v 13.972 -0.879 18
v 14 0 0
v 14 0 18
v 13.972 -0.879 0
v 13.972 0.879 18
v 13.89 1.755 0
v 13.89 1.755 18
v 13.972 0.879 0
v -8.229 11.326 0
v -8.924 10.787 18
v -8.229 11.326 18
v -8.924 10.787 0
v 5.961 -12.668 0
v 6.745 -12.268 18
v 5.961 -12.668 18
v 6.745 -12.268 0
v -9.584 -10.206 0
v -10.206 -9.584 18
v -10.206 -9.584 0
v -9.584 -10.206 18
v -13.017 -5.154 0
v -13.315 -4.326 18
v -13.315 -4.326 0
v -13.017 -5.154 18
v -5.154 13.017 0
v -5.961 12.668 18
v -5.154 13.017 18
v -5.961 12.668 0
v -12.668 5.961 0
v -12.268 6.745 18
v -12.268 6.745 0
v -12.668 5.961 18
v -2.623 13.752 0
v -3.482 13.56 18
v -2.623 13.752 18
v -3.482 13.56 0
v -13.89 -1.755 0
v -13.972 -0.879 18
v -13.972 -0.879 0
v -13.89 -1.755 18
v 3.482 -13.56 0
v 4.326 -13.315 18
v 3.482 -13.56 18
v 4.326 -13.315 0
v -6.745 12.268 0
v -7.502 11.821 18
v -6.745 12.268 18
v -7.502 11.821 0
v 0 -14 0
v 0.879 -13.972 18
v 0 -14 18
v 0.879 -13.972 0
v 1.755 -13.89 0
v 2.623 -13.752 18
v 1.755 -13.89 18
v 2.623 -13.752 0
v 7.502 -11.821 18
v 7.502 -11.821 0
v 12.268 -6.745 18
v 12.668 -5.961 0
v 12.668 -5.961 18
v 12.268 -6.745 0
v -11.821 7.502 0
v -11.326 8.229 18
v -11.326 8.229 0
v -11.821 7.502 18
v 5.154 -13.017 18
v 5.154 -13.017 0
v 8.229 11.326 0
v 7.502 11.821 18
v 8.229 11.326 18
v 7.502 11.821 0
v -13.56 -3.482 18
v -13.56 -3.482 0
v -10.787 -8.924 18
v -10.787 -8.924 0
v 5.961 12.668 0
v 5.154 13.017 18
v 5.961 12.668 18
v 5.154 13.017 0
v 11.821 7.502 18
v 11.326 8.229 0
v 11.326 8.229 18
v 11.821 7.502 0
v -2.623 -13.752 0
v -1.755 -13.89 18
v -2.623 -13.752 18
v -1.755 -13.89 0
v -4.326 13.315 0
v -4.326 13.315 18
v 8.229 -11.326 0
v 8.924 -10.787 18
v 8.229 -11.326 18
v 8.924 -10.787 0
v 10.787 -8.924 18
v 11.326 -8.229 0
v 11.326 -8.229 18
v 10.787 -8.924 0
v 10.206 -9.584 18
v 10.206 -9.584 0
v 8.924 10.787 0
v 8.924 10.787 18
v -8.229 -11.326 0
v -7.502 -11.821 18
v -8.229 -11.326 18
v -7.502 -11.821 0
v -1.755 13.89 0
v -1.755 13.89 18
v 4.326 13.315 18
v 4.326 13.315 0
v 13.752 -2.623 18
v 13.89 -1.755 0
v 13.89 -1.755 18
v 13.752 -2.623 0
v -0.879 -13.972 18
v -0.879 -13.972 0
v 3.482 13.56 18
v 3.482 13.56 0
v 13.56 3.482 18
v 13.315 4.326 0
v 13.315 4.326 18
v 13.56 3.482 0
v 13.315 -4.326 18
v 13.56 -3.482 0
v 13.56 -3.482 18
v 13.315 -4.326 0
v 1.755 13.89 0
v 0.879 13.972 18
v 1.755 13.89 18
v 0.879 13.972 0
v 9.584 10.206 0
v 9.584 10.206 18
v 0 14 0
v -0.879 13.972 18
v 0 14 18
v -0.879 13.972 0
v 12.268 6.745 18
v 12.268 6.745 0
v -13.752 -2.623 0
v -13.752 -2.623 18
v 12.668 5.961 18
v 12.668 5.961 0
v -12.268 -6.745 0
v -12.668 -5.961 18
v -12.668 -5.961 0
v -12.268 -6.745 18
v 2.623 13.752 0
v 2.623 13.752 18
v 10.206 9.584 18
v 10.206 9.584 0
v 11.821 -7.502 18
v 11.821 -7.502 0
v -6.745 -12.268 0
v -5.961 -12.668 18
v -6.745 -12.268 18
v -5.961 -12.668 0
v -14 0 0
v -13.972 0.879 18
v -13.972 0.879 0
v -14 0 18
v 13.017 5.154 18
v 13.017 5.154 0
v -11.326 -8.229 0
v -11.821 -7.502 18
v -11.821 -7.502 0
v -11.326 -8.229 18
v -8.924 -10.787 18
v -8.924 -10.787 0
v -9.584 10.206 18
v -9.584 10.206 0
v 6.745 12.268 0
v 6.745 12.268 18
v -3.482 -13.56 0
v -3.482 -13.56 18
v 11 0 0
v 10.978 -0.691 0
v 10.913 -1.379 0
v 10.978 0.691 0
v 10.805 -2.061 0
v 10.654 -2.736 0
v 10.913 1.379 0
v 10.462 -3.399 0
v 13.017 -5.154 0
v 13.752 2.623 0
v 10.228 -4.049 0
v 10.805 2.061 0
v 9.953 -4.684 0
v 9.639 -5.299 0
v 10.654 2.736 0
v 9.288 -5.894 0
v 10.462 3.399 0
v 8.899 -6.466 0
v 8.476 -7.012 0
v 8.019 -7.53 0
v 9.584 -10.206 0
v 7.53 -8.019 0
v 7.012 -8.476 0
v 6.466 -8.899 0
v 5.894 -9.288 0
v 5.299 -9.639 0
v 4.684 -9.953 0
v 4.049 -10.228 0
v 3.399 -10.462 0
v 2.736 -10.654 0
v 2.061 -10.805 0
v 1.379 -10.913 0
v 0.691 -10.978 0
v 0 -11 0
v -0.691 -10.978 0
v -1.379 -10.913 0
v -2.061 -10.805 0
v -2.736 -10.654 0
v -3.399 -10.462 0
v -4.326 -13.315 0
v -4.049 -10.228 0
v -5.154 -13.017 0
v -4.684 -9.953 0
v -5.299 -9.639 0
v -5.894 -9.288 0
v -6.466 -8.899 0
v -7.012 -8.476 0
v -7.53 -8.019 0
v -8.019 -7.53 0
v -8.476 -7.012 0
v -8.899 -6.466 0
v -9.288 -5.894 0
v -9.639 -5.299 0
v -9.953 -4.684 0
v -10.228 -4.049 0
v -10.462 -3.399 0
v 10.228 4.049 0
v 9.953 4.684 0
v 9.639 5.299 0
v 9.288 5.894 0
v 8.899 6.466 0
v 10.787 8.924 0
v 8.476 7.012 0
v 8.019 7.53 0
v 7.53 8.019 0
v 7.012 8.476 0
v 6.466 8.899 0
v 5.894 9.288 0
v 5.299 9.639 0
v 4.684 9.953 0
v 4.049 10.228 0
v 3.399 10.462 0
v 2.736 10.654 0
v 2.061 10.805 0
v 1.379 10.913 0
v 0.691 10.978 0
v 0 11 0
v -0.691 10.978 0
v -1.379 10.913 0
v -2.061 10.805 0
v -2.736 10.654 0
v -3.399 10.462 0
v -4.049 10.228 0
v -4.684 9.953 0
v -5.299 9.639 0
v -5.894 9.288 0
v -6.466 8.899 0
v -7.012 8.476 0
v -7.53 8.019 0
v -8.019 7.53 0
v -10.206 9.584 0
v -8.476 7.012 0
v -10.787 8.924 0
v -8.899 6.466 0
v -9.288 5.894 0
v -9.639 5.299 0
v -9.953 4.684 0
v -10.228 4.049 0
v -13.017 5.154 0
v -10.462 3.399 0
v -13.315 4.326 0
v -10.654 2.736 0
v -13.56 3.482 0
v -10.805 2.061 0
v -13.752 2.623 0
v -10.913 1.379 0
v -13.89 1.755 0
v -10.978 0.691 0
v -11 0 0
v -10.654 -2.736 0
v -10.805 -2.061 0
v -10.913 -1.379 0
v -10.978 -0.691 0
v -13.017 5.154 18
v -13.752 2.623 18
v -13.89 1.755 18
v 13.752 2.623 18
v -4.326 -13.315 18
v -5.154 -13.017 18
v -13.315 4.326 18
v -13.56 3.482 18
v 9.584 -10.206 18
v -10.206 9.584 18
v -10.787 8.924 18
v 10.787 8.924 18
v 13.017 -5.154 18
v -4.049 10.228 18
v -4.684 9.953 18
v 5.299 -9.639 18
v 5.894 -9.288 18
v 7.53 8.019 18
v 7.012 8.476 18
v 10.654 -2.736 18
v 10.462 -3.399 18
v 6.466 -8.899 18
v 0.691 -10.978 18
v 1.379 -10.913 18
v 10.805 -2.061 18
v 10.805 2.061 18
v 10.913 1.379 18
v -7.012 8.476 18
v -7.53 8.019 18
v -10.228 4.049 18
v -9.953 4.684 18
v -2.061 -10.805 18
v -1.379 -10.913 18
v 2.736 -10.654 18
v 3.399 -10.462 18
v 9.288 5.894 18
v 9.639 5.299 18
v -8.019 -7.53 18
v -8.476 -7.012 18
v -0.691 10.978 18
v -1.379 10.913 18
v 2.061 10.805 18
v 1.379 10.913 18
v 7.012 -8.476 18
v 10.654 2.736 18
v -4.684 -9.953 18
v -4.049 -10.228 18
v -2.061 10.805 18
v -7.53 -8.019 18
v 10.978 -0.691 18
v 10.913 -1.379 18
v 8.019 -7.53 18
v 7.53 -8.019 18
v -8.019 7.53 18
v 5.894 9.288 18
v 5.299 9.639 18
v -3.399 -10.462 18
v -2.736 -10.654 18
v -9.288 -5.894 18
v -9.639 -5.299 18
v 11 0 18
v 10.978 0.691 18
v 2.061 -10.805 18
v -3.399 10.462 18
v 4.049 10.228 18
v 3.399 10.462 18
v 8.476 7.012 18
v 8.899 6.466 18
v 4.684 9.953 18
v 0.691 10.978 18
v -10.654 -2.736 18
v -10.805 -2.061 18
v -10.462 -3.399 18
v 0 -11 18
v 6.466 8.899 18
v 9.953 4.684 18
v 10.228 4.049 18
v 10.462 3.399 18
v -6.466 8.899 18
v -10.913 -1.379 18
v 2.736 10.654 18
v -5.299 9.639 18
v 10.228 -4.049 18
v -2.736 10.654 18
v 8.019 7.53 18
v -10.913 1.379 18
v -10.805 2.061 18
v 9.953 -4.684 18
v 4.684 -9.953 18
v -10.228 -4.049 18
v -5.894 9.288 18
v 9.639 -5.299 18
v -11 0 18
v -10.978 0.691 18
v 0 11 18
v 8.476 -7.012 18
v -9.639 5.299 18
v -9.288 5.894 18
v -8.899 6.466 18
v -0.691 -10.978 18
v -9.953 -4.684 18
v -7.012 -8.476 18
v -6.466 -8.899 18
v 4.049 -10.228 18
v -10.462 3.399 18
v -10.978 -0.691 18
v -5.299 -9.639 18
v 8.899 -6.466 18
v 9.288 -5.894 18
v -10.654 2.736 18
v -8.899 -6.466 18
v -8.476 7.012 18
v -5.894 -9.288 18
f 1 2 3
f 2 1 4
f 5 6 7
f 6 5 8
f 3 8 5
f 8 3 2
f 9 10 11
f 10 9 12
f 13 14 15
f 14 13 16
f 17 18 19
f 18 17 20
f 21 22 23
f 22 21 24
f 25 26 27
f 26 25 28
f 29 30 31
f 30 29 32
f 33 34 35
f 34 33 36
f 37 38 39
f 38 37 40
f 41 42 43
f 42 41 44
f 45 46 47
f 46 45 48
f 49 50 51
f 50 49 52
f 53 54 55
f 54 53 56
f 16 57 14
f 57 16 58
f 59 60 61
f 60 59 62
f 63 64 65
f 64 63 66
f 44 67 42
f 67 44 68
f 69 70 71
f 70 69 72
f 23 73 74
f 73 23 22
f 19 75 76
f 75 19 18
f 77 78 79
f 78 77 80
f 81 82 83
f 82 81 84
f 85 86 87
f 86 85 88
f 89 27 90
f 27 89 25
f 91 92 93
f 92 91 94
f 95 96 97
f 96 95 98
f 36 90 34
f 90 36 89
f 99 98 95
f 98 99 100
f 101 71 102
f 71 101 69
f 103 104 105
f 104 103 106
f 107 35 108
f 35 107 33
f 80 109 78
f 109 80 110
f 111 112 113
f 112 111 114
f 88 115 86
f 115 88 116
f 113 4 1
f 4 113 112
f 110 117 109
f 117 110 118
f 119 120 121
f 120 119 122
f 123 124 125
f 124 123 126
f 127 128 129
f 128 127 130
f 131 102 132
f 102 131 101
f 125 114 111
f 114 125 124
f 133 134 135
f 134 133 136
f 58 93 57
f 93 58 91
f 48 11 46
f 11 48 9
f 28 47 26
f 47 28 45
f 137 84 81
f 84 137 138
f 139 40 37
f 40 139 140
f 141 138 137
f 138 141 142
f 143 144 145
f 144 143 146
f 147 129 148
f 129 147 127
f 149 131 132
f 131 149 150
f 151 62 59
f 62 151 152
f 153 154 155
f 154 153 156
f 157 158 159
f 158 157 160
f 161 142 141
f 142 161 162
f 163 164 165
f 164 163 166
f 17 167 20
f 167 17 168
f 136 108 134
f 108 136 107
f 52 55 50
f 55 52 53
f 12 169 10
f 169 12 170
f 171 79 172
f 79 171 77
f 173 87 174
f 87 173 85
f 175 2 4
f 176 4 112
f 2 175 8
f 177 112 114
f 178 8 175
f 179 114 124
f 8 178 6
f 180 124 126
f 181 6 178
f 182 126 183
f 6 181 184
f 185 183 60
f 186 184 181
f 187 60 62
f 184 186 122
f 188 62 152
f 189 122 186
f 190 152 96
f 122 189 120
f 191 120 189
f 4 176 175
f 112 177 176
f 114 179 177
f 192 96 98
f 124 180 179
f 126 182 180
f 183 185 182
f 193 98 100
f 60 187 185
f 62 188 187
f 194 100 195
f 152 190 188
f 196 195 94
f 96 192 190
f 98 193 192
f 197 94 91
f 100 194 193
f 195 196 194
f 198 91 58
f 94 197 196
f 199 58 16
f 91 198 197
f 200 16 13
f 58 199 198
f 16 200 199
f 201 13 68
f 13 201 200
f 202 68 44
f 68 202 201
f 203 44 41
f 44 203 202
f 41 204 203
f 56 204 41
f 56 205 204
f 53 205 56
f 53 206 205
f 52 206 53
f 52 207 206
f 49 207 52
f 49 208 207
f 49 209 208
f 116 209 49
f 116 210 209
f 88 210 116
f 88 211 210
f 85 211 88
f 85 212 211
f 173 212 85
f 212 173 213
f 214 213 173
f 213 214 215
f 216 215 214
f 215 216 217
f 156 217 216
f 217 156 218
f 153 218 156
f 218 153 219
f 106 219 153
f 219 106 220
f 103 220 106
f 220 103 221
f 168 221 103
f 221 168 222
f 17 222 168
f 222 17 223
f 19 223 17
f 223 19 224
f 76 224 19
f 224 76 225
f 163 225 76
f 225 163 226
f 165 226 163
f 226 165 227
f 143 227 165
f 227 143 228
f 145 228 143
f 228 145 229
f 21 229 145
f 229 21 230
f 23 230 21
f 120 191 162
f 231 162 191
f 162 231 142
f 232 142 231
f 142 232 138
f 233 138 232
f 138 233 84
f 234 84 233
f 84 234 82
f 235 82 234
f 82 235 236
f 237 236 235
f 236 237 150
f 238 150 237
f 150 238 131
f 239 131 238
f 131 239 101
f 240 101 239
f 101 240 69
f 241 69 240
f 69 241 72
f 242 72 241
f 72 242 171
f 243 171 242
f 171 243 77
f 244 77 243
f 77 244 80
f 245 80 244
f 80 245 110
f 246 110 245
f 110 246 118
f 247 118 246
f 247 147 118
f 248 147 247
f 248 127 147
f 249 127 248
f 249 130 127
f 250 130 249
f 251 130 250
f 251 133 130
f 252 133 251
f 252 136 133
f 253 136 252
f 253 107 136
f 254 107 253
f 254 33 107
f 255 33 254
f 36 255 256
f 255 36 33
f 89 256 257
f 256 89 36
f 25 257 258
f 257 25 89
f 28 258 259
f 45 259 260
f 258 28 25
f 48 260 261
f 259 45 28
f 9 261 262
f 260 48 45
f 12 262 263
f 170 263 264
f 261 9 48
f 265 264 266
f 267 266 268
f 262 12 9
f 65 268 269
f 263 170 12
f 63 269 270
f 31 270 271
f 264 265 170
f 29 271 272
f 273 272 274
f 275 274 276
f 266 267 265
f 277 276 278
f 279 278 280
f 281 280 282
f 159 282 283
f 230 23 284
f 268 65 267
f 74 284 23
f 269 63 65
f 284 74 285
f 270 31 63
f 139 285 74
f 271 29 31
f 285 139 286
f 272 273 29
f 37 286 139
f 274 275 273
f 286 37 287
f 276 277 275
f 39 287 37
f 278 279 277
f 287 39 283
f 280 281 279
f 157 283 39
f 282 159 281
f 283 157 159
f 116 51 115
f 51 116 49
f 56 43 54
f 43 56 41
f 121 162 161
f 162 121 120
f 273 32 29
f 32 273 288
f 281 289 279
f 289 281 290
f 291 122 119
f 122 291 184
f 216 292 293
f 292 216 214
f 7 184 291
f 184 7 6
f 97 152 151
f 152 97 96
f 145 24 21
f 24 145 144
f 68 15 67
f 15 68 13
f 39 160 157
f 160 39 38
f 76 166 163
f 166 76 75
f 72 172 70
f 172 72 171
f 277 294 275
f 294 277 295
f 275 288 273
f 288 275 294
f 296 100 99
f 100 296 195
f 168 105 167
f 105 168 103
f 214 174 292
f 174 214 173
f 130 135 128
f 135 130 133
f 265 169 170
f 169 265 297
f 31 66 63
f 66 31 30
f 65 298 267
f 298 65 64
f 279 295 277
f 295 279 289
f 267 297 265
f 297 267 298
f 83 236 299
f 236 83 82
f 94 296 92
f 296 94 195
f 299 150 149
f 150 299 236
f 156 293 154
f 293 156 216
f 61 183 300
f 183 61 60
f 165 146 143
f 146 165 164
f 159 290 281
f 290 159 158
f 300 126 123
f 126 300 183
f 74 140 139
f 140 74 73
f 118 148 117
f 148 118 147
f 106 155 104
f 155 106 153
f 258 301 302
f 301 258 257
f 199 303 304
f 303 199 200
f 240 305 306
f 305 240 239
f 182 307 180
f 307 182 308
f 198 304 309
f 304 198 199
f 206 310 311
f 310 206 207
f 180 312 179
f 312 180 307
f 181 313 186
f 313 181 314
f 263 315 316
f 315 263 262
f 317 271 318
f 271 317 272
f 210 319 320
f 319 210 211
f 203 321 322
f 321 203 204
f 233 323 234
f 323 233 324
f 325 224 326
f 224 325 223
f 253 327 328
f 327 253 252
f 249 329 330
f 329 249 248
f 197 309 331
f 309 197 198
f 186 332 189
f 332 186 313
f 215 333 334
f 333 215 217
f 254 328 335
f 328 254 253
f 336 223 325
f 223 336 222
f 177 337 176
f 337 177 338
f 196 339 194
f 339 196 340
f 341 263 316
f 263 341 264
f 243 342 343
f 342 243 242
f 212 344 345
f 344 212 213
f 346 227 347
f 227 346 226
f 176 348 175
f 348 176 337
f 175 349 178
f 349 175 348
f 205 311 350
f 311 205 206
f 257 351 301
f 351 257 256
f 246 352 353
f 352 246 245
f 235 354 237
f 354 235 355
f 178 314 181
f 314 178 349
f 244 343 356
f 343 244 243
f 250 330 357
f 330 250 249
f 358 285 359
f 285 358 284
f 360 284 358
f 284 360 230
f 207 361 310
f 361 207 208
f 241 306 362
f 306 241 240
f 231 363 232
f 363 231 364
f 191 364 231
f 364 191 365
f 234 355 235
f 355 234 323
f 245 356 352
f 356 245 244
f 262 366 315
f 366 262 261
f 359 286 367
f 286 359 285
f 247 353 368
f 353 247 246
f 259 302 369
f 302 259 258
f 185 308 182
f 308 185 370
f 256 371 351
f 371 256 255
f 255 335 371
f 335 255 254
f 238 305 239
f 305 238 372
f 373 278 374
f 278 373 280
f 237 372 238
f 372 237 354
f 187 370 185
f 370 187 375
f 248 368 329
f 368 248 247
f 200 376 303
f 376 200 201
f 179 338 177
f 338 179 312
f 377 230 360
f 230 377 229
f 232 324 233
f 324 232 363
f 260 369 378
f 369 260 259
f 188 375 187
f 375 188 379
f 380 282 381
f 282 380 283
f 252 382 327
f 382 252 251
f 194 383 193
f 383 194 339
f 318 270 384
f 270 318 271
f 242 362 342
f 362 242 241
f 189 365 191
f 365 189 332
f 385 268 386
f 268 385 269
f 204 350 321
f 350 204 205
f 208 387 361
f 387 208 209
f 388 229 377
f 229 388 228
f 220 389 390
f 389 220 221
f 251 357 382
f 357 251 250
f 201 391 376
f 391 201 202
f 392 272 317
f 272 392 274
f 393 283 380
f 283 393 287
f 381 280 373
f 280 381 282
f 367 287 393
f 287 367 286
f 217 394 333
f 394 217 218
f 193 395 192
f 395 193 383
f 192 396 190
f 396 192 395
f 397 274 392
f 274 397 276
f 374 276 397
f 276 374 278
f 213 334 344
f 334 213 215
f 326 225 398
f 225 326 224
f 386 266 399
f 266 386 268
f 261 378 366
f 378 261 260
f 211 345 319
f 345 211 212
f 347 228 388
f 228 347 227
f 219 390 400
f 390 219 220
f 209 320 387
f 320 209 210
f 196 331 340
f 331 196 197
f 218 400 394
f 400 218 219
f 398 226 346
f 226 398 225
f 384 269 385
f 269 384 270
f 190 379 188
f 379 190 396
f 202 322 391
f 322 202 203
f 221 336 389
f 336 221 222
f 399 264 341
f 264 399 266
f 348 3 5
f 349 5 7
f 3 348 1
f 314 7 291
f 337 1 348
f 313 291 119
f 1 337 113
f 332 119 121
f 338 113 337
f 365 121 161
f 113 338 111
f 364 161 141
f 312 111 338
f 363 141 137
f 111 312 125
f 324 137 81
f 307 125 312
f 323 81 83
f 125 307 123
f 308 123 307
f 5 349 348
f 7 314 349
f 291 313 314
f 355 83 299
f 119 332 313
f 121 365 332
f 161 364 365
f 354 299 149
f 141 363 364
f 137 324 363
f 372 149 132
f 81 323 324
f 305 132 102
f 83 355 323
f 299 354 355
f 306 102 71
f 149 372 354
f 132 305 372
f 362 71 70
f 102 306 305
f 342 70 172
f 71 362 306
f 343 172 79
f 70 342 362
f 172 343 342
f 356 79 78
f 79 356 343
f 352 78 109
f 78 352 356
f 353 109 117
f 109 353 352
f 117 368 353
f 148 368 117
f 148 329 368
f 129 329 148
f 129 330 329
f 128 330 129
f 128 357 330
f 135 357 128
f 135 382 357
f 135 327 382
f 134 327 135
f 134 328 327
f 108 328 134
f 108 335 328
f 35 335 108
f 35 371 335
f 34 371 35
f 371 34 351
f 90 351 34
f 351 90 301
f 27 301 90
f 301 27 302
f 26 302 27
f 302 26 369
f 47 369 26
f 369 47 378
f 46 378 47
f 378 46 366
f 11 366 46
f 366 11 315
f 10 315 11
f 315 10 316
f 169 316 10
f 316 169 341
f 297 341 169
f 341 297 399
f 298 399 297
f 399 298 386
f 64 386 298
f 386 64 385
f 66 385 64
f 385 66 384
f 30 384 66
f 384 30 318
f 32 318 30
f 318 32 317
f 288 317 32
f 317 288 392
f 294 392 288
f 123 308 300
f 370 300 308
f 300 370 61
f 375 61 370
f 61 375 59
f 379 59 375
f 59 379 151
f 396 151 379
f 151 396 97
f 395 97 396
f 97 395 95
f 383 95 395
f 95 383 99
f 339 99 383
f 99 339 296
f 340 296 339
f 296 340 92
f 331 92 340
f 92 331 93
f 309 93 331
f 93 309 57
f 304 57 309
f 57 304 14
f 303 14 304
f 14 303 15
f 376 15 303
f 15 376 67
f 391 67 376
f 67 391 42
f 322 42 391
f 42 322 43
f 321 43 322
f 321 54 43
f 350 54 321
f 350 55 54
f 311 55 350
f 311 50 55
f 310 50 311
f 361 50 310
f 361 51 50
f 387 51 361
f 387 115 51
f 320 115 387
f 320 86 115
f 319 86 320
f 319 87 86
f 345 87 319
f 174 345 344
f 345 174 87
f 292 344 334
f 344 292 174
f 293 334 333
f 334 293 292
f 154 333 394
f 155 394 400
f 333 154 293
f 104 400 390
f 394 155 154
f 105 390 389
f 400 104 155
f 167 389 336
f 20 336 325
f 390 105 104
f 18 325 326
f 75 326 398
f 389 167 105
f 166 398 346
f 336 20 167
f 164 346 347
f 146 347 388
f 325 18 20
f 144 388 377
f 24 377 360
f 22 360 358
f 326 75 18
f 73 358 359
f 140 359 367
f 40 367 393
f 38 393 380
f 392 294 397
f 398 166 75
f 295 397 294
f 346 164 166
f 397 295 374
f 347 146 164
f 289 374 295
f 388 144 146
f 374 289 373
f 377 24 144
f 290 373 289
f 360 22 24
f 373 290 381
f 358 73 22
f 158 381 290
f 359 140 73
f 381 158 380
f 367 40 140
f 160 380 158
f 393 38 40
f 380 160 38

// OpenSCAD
// Function to create a tapered ring
module tapered_ring(inner_diameter, outer_diameter, height, taper_height) {
    difference() {
        // Outer cylinder
        cylinder(h=height, r=outer_diameter/2, $fn=100);
        // Inner cylinder
        translate([0, 0, -0.1]) // Slightly lower to ensure clean subtraction
        cylinder(h=height + 0.2, r=inner_diameter/2, $fn=100);
        // Tapered edge
        translate([0, 0, height - taper_height])
        rotate([0, 0, 0])
        cylinder(h=taper_height, r1=outer_diameter/2, r2=outer_diameter/6, $fn=100); // Adjust tapering for sharper edge and teardrop profile
    }
}

// Parameters for the tapered ring
inner_diameter = 22; // Increased inner diameter to match original model proportions
outer_diameter = 28; // Outer diameter remains unchanged
height = 3;          // Reduced height for thinner ring
taper_height = 7;    // Increased taper height for sharper edge and teardrop profile

// Stack of tapered rings
translate([0, 0, 0]) tapered_ring(inner_diameter, outer_diameter, height, taper_height); // Layer 1
translate([0, 0, height]) tapered_ring(inner_diameter, outer_diameter, height, taper_height); // Layer 2
translate([0, 0, 2 * height]) tapered_ring(inner_diameter, outer_diameter, height, taper_height); // Layer 3
translate([0, 0, 3 * height]) tapered_ring(inner_diameter, outer_diameter, height, taper_height); // Layer 4
translate([0, 0, 4 * height]) tapered_ring(inner_diameter, outer_diameter, height, taper_height); // Layer 5
translate([0, 0, 5 * height]) tapered_ring(inner_diameter, outer_diameter, height, taper_height); // Layer 6
